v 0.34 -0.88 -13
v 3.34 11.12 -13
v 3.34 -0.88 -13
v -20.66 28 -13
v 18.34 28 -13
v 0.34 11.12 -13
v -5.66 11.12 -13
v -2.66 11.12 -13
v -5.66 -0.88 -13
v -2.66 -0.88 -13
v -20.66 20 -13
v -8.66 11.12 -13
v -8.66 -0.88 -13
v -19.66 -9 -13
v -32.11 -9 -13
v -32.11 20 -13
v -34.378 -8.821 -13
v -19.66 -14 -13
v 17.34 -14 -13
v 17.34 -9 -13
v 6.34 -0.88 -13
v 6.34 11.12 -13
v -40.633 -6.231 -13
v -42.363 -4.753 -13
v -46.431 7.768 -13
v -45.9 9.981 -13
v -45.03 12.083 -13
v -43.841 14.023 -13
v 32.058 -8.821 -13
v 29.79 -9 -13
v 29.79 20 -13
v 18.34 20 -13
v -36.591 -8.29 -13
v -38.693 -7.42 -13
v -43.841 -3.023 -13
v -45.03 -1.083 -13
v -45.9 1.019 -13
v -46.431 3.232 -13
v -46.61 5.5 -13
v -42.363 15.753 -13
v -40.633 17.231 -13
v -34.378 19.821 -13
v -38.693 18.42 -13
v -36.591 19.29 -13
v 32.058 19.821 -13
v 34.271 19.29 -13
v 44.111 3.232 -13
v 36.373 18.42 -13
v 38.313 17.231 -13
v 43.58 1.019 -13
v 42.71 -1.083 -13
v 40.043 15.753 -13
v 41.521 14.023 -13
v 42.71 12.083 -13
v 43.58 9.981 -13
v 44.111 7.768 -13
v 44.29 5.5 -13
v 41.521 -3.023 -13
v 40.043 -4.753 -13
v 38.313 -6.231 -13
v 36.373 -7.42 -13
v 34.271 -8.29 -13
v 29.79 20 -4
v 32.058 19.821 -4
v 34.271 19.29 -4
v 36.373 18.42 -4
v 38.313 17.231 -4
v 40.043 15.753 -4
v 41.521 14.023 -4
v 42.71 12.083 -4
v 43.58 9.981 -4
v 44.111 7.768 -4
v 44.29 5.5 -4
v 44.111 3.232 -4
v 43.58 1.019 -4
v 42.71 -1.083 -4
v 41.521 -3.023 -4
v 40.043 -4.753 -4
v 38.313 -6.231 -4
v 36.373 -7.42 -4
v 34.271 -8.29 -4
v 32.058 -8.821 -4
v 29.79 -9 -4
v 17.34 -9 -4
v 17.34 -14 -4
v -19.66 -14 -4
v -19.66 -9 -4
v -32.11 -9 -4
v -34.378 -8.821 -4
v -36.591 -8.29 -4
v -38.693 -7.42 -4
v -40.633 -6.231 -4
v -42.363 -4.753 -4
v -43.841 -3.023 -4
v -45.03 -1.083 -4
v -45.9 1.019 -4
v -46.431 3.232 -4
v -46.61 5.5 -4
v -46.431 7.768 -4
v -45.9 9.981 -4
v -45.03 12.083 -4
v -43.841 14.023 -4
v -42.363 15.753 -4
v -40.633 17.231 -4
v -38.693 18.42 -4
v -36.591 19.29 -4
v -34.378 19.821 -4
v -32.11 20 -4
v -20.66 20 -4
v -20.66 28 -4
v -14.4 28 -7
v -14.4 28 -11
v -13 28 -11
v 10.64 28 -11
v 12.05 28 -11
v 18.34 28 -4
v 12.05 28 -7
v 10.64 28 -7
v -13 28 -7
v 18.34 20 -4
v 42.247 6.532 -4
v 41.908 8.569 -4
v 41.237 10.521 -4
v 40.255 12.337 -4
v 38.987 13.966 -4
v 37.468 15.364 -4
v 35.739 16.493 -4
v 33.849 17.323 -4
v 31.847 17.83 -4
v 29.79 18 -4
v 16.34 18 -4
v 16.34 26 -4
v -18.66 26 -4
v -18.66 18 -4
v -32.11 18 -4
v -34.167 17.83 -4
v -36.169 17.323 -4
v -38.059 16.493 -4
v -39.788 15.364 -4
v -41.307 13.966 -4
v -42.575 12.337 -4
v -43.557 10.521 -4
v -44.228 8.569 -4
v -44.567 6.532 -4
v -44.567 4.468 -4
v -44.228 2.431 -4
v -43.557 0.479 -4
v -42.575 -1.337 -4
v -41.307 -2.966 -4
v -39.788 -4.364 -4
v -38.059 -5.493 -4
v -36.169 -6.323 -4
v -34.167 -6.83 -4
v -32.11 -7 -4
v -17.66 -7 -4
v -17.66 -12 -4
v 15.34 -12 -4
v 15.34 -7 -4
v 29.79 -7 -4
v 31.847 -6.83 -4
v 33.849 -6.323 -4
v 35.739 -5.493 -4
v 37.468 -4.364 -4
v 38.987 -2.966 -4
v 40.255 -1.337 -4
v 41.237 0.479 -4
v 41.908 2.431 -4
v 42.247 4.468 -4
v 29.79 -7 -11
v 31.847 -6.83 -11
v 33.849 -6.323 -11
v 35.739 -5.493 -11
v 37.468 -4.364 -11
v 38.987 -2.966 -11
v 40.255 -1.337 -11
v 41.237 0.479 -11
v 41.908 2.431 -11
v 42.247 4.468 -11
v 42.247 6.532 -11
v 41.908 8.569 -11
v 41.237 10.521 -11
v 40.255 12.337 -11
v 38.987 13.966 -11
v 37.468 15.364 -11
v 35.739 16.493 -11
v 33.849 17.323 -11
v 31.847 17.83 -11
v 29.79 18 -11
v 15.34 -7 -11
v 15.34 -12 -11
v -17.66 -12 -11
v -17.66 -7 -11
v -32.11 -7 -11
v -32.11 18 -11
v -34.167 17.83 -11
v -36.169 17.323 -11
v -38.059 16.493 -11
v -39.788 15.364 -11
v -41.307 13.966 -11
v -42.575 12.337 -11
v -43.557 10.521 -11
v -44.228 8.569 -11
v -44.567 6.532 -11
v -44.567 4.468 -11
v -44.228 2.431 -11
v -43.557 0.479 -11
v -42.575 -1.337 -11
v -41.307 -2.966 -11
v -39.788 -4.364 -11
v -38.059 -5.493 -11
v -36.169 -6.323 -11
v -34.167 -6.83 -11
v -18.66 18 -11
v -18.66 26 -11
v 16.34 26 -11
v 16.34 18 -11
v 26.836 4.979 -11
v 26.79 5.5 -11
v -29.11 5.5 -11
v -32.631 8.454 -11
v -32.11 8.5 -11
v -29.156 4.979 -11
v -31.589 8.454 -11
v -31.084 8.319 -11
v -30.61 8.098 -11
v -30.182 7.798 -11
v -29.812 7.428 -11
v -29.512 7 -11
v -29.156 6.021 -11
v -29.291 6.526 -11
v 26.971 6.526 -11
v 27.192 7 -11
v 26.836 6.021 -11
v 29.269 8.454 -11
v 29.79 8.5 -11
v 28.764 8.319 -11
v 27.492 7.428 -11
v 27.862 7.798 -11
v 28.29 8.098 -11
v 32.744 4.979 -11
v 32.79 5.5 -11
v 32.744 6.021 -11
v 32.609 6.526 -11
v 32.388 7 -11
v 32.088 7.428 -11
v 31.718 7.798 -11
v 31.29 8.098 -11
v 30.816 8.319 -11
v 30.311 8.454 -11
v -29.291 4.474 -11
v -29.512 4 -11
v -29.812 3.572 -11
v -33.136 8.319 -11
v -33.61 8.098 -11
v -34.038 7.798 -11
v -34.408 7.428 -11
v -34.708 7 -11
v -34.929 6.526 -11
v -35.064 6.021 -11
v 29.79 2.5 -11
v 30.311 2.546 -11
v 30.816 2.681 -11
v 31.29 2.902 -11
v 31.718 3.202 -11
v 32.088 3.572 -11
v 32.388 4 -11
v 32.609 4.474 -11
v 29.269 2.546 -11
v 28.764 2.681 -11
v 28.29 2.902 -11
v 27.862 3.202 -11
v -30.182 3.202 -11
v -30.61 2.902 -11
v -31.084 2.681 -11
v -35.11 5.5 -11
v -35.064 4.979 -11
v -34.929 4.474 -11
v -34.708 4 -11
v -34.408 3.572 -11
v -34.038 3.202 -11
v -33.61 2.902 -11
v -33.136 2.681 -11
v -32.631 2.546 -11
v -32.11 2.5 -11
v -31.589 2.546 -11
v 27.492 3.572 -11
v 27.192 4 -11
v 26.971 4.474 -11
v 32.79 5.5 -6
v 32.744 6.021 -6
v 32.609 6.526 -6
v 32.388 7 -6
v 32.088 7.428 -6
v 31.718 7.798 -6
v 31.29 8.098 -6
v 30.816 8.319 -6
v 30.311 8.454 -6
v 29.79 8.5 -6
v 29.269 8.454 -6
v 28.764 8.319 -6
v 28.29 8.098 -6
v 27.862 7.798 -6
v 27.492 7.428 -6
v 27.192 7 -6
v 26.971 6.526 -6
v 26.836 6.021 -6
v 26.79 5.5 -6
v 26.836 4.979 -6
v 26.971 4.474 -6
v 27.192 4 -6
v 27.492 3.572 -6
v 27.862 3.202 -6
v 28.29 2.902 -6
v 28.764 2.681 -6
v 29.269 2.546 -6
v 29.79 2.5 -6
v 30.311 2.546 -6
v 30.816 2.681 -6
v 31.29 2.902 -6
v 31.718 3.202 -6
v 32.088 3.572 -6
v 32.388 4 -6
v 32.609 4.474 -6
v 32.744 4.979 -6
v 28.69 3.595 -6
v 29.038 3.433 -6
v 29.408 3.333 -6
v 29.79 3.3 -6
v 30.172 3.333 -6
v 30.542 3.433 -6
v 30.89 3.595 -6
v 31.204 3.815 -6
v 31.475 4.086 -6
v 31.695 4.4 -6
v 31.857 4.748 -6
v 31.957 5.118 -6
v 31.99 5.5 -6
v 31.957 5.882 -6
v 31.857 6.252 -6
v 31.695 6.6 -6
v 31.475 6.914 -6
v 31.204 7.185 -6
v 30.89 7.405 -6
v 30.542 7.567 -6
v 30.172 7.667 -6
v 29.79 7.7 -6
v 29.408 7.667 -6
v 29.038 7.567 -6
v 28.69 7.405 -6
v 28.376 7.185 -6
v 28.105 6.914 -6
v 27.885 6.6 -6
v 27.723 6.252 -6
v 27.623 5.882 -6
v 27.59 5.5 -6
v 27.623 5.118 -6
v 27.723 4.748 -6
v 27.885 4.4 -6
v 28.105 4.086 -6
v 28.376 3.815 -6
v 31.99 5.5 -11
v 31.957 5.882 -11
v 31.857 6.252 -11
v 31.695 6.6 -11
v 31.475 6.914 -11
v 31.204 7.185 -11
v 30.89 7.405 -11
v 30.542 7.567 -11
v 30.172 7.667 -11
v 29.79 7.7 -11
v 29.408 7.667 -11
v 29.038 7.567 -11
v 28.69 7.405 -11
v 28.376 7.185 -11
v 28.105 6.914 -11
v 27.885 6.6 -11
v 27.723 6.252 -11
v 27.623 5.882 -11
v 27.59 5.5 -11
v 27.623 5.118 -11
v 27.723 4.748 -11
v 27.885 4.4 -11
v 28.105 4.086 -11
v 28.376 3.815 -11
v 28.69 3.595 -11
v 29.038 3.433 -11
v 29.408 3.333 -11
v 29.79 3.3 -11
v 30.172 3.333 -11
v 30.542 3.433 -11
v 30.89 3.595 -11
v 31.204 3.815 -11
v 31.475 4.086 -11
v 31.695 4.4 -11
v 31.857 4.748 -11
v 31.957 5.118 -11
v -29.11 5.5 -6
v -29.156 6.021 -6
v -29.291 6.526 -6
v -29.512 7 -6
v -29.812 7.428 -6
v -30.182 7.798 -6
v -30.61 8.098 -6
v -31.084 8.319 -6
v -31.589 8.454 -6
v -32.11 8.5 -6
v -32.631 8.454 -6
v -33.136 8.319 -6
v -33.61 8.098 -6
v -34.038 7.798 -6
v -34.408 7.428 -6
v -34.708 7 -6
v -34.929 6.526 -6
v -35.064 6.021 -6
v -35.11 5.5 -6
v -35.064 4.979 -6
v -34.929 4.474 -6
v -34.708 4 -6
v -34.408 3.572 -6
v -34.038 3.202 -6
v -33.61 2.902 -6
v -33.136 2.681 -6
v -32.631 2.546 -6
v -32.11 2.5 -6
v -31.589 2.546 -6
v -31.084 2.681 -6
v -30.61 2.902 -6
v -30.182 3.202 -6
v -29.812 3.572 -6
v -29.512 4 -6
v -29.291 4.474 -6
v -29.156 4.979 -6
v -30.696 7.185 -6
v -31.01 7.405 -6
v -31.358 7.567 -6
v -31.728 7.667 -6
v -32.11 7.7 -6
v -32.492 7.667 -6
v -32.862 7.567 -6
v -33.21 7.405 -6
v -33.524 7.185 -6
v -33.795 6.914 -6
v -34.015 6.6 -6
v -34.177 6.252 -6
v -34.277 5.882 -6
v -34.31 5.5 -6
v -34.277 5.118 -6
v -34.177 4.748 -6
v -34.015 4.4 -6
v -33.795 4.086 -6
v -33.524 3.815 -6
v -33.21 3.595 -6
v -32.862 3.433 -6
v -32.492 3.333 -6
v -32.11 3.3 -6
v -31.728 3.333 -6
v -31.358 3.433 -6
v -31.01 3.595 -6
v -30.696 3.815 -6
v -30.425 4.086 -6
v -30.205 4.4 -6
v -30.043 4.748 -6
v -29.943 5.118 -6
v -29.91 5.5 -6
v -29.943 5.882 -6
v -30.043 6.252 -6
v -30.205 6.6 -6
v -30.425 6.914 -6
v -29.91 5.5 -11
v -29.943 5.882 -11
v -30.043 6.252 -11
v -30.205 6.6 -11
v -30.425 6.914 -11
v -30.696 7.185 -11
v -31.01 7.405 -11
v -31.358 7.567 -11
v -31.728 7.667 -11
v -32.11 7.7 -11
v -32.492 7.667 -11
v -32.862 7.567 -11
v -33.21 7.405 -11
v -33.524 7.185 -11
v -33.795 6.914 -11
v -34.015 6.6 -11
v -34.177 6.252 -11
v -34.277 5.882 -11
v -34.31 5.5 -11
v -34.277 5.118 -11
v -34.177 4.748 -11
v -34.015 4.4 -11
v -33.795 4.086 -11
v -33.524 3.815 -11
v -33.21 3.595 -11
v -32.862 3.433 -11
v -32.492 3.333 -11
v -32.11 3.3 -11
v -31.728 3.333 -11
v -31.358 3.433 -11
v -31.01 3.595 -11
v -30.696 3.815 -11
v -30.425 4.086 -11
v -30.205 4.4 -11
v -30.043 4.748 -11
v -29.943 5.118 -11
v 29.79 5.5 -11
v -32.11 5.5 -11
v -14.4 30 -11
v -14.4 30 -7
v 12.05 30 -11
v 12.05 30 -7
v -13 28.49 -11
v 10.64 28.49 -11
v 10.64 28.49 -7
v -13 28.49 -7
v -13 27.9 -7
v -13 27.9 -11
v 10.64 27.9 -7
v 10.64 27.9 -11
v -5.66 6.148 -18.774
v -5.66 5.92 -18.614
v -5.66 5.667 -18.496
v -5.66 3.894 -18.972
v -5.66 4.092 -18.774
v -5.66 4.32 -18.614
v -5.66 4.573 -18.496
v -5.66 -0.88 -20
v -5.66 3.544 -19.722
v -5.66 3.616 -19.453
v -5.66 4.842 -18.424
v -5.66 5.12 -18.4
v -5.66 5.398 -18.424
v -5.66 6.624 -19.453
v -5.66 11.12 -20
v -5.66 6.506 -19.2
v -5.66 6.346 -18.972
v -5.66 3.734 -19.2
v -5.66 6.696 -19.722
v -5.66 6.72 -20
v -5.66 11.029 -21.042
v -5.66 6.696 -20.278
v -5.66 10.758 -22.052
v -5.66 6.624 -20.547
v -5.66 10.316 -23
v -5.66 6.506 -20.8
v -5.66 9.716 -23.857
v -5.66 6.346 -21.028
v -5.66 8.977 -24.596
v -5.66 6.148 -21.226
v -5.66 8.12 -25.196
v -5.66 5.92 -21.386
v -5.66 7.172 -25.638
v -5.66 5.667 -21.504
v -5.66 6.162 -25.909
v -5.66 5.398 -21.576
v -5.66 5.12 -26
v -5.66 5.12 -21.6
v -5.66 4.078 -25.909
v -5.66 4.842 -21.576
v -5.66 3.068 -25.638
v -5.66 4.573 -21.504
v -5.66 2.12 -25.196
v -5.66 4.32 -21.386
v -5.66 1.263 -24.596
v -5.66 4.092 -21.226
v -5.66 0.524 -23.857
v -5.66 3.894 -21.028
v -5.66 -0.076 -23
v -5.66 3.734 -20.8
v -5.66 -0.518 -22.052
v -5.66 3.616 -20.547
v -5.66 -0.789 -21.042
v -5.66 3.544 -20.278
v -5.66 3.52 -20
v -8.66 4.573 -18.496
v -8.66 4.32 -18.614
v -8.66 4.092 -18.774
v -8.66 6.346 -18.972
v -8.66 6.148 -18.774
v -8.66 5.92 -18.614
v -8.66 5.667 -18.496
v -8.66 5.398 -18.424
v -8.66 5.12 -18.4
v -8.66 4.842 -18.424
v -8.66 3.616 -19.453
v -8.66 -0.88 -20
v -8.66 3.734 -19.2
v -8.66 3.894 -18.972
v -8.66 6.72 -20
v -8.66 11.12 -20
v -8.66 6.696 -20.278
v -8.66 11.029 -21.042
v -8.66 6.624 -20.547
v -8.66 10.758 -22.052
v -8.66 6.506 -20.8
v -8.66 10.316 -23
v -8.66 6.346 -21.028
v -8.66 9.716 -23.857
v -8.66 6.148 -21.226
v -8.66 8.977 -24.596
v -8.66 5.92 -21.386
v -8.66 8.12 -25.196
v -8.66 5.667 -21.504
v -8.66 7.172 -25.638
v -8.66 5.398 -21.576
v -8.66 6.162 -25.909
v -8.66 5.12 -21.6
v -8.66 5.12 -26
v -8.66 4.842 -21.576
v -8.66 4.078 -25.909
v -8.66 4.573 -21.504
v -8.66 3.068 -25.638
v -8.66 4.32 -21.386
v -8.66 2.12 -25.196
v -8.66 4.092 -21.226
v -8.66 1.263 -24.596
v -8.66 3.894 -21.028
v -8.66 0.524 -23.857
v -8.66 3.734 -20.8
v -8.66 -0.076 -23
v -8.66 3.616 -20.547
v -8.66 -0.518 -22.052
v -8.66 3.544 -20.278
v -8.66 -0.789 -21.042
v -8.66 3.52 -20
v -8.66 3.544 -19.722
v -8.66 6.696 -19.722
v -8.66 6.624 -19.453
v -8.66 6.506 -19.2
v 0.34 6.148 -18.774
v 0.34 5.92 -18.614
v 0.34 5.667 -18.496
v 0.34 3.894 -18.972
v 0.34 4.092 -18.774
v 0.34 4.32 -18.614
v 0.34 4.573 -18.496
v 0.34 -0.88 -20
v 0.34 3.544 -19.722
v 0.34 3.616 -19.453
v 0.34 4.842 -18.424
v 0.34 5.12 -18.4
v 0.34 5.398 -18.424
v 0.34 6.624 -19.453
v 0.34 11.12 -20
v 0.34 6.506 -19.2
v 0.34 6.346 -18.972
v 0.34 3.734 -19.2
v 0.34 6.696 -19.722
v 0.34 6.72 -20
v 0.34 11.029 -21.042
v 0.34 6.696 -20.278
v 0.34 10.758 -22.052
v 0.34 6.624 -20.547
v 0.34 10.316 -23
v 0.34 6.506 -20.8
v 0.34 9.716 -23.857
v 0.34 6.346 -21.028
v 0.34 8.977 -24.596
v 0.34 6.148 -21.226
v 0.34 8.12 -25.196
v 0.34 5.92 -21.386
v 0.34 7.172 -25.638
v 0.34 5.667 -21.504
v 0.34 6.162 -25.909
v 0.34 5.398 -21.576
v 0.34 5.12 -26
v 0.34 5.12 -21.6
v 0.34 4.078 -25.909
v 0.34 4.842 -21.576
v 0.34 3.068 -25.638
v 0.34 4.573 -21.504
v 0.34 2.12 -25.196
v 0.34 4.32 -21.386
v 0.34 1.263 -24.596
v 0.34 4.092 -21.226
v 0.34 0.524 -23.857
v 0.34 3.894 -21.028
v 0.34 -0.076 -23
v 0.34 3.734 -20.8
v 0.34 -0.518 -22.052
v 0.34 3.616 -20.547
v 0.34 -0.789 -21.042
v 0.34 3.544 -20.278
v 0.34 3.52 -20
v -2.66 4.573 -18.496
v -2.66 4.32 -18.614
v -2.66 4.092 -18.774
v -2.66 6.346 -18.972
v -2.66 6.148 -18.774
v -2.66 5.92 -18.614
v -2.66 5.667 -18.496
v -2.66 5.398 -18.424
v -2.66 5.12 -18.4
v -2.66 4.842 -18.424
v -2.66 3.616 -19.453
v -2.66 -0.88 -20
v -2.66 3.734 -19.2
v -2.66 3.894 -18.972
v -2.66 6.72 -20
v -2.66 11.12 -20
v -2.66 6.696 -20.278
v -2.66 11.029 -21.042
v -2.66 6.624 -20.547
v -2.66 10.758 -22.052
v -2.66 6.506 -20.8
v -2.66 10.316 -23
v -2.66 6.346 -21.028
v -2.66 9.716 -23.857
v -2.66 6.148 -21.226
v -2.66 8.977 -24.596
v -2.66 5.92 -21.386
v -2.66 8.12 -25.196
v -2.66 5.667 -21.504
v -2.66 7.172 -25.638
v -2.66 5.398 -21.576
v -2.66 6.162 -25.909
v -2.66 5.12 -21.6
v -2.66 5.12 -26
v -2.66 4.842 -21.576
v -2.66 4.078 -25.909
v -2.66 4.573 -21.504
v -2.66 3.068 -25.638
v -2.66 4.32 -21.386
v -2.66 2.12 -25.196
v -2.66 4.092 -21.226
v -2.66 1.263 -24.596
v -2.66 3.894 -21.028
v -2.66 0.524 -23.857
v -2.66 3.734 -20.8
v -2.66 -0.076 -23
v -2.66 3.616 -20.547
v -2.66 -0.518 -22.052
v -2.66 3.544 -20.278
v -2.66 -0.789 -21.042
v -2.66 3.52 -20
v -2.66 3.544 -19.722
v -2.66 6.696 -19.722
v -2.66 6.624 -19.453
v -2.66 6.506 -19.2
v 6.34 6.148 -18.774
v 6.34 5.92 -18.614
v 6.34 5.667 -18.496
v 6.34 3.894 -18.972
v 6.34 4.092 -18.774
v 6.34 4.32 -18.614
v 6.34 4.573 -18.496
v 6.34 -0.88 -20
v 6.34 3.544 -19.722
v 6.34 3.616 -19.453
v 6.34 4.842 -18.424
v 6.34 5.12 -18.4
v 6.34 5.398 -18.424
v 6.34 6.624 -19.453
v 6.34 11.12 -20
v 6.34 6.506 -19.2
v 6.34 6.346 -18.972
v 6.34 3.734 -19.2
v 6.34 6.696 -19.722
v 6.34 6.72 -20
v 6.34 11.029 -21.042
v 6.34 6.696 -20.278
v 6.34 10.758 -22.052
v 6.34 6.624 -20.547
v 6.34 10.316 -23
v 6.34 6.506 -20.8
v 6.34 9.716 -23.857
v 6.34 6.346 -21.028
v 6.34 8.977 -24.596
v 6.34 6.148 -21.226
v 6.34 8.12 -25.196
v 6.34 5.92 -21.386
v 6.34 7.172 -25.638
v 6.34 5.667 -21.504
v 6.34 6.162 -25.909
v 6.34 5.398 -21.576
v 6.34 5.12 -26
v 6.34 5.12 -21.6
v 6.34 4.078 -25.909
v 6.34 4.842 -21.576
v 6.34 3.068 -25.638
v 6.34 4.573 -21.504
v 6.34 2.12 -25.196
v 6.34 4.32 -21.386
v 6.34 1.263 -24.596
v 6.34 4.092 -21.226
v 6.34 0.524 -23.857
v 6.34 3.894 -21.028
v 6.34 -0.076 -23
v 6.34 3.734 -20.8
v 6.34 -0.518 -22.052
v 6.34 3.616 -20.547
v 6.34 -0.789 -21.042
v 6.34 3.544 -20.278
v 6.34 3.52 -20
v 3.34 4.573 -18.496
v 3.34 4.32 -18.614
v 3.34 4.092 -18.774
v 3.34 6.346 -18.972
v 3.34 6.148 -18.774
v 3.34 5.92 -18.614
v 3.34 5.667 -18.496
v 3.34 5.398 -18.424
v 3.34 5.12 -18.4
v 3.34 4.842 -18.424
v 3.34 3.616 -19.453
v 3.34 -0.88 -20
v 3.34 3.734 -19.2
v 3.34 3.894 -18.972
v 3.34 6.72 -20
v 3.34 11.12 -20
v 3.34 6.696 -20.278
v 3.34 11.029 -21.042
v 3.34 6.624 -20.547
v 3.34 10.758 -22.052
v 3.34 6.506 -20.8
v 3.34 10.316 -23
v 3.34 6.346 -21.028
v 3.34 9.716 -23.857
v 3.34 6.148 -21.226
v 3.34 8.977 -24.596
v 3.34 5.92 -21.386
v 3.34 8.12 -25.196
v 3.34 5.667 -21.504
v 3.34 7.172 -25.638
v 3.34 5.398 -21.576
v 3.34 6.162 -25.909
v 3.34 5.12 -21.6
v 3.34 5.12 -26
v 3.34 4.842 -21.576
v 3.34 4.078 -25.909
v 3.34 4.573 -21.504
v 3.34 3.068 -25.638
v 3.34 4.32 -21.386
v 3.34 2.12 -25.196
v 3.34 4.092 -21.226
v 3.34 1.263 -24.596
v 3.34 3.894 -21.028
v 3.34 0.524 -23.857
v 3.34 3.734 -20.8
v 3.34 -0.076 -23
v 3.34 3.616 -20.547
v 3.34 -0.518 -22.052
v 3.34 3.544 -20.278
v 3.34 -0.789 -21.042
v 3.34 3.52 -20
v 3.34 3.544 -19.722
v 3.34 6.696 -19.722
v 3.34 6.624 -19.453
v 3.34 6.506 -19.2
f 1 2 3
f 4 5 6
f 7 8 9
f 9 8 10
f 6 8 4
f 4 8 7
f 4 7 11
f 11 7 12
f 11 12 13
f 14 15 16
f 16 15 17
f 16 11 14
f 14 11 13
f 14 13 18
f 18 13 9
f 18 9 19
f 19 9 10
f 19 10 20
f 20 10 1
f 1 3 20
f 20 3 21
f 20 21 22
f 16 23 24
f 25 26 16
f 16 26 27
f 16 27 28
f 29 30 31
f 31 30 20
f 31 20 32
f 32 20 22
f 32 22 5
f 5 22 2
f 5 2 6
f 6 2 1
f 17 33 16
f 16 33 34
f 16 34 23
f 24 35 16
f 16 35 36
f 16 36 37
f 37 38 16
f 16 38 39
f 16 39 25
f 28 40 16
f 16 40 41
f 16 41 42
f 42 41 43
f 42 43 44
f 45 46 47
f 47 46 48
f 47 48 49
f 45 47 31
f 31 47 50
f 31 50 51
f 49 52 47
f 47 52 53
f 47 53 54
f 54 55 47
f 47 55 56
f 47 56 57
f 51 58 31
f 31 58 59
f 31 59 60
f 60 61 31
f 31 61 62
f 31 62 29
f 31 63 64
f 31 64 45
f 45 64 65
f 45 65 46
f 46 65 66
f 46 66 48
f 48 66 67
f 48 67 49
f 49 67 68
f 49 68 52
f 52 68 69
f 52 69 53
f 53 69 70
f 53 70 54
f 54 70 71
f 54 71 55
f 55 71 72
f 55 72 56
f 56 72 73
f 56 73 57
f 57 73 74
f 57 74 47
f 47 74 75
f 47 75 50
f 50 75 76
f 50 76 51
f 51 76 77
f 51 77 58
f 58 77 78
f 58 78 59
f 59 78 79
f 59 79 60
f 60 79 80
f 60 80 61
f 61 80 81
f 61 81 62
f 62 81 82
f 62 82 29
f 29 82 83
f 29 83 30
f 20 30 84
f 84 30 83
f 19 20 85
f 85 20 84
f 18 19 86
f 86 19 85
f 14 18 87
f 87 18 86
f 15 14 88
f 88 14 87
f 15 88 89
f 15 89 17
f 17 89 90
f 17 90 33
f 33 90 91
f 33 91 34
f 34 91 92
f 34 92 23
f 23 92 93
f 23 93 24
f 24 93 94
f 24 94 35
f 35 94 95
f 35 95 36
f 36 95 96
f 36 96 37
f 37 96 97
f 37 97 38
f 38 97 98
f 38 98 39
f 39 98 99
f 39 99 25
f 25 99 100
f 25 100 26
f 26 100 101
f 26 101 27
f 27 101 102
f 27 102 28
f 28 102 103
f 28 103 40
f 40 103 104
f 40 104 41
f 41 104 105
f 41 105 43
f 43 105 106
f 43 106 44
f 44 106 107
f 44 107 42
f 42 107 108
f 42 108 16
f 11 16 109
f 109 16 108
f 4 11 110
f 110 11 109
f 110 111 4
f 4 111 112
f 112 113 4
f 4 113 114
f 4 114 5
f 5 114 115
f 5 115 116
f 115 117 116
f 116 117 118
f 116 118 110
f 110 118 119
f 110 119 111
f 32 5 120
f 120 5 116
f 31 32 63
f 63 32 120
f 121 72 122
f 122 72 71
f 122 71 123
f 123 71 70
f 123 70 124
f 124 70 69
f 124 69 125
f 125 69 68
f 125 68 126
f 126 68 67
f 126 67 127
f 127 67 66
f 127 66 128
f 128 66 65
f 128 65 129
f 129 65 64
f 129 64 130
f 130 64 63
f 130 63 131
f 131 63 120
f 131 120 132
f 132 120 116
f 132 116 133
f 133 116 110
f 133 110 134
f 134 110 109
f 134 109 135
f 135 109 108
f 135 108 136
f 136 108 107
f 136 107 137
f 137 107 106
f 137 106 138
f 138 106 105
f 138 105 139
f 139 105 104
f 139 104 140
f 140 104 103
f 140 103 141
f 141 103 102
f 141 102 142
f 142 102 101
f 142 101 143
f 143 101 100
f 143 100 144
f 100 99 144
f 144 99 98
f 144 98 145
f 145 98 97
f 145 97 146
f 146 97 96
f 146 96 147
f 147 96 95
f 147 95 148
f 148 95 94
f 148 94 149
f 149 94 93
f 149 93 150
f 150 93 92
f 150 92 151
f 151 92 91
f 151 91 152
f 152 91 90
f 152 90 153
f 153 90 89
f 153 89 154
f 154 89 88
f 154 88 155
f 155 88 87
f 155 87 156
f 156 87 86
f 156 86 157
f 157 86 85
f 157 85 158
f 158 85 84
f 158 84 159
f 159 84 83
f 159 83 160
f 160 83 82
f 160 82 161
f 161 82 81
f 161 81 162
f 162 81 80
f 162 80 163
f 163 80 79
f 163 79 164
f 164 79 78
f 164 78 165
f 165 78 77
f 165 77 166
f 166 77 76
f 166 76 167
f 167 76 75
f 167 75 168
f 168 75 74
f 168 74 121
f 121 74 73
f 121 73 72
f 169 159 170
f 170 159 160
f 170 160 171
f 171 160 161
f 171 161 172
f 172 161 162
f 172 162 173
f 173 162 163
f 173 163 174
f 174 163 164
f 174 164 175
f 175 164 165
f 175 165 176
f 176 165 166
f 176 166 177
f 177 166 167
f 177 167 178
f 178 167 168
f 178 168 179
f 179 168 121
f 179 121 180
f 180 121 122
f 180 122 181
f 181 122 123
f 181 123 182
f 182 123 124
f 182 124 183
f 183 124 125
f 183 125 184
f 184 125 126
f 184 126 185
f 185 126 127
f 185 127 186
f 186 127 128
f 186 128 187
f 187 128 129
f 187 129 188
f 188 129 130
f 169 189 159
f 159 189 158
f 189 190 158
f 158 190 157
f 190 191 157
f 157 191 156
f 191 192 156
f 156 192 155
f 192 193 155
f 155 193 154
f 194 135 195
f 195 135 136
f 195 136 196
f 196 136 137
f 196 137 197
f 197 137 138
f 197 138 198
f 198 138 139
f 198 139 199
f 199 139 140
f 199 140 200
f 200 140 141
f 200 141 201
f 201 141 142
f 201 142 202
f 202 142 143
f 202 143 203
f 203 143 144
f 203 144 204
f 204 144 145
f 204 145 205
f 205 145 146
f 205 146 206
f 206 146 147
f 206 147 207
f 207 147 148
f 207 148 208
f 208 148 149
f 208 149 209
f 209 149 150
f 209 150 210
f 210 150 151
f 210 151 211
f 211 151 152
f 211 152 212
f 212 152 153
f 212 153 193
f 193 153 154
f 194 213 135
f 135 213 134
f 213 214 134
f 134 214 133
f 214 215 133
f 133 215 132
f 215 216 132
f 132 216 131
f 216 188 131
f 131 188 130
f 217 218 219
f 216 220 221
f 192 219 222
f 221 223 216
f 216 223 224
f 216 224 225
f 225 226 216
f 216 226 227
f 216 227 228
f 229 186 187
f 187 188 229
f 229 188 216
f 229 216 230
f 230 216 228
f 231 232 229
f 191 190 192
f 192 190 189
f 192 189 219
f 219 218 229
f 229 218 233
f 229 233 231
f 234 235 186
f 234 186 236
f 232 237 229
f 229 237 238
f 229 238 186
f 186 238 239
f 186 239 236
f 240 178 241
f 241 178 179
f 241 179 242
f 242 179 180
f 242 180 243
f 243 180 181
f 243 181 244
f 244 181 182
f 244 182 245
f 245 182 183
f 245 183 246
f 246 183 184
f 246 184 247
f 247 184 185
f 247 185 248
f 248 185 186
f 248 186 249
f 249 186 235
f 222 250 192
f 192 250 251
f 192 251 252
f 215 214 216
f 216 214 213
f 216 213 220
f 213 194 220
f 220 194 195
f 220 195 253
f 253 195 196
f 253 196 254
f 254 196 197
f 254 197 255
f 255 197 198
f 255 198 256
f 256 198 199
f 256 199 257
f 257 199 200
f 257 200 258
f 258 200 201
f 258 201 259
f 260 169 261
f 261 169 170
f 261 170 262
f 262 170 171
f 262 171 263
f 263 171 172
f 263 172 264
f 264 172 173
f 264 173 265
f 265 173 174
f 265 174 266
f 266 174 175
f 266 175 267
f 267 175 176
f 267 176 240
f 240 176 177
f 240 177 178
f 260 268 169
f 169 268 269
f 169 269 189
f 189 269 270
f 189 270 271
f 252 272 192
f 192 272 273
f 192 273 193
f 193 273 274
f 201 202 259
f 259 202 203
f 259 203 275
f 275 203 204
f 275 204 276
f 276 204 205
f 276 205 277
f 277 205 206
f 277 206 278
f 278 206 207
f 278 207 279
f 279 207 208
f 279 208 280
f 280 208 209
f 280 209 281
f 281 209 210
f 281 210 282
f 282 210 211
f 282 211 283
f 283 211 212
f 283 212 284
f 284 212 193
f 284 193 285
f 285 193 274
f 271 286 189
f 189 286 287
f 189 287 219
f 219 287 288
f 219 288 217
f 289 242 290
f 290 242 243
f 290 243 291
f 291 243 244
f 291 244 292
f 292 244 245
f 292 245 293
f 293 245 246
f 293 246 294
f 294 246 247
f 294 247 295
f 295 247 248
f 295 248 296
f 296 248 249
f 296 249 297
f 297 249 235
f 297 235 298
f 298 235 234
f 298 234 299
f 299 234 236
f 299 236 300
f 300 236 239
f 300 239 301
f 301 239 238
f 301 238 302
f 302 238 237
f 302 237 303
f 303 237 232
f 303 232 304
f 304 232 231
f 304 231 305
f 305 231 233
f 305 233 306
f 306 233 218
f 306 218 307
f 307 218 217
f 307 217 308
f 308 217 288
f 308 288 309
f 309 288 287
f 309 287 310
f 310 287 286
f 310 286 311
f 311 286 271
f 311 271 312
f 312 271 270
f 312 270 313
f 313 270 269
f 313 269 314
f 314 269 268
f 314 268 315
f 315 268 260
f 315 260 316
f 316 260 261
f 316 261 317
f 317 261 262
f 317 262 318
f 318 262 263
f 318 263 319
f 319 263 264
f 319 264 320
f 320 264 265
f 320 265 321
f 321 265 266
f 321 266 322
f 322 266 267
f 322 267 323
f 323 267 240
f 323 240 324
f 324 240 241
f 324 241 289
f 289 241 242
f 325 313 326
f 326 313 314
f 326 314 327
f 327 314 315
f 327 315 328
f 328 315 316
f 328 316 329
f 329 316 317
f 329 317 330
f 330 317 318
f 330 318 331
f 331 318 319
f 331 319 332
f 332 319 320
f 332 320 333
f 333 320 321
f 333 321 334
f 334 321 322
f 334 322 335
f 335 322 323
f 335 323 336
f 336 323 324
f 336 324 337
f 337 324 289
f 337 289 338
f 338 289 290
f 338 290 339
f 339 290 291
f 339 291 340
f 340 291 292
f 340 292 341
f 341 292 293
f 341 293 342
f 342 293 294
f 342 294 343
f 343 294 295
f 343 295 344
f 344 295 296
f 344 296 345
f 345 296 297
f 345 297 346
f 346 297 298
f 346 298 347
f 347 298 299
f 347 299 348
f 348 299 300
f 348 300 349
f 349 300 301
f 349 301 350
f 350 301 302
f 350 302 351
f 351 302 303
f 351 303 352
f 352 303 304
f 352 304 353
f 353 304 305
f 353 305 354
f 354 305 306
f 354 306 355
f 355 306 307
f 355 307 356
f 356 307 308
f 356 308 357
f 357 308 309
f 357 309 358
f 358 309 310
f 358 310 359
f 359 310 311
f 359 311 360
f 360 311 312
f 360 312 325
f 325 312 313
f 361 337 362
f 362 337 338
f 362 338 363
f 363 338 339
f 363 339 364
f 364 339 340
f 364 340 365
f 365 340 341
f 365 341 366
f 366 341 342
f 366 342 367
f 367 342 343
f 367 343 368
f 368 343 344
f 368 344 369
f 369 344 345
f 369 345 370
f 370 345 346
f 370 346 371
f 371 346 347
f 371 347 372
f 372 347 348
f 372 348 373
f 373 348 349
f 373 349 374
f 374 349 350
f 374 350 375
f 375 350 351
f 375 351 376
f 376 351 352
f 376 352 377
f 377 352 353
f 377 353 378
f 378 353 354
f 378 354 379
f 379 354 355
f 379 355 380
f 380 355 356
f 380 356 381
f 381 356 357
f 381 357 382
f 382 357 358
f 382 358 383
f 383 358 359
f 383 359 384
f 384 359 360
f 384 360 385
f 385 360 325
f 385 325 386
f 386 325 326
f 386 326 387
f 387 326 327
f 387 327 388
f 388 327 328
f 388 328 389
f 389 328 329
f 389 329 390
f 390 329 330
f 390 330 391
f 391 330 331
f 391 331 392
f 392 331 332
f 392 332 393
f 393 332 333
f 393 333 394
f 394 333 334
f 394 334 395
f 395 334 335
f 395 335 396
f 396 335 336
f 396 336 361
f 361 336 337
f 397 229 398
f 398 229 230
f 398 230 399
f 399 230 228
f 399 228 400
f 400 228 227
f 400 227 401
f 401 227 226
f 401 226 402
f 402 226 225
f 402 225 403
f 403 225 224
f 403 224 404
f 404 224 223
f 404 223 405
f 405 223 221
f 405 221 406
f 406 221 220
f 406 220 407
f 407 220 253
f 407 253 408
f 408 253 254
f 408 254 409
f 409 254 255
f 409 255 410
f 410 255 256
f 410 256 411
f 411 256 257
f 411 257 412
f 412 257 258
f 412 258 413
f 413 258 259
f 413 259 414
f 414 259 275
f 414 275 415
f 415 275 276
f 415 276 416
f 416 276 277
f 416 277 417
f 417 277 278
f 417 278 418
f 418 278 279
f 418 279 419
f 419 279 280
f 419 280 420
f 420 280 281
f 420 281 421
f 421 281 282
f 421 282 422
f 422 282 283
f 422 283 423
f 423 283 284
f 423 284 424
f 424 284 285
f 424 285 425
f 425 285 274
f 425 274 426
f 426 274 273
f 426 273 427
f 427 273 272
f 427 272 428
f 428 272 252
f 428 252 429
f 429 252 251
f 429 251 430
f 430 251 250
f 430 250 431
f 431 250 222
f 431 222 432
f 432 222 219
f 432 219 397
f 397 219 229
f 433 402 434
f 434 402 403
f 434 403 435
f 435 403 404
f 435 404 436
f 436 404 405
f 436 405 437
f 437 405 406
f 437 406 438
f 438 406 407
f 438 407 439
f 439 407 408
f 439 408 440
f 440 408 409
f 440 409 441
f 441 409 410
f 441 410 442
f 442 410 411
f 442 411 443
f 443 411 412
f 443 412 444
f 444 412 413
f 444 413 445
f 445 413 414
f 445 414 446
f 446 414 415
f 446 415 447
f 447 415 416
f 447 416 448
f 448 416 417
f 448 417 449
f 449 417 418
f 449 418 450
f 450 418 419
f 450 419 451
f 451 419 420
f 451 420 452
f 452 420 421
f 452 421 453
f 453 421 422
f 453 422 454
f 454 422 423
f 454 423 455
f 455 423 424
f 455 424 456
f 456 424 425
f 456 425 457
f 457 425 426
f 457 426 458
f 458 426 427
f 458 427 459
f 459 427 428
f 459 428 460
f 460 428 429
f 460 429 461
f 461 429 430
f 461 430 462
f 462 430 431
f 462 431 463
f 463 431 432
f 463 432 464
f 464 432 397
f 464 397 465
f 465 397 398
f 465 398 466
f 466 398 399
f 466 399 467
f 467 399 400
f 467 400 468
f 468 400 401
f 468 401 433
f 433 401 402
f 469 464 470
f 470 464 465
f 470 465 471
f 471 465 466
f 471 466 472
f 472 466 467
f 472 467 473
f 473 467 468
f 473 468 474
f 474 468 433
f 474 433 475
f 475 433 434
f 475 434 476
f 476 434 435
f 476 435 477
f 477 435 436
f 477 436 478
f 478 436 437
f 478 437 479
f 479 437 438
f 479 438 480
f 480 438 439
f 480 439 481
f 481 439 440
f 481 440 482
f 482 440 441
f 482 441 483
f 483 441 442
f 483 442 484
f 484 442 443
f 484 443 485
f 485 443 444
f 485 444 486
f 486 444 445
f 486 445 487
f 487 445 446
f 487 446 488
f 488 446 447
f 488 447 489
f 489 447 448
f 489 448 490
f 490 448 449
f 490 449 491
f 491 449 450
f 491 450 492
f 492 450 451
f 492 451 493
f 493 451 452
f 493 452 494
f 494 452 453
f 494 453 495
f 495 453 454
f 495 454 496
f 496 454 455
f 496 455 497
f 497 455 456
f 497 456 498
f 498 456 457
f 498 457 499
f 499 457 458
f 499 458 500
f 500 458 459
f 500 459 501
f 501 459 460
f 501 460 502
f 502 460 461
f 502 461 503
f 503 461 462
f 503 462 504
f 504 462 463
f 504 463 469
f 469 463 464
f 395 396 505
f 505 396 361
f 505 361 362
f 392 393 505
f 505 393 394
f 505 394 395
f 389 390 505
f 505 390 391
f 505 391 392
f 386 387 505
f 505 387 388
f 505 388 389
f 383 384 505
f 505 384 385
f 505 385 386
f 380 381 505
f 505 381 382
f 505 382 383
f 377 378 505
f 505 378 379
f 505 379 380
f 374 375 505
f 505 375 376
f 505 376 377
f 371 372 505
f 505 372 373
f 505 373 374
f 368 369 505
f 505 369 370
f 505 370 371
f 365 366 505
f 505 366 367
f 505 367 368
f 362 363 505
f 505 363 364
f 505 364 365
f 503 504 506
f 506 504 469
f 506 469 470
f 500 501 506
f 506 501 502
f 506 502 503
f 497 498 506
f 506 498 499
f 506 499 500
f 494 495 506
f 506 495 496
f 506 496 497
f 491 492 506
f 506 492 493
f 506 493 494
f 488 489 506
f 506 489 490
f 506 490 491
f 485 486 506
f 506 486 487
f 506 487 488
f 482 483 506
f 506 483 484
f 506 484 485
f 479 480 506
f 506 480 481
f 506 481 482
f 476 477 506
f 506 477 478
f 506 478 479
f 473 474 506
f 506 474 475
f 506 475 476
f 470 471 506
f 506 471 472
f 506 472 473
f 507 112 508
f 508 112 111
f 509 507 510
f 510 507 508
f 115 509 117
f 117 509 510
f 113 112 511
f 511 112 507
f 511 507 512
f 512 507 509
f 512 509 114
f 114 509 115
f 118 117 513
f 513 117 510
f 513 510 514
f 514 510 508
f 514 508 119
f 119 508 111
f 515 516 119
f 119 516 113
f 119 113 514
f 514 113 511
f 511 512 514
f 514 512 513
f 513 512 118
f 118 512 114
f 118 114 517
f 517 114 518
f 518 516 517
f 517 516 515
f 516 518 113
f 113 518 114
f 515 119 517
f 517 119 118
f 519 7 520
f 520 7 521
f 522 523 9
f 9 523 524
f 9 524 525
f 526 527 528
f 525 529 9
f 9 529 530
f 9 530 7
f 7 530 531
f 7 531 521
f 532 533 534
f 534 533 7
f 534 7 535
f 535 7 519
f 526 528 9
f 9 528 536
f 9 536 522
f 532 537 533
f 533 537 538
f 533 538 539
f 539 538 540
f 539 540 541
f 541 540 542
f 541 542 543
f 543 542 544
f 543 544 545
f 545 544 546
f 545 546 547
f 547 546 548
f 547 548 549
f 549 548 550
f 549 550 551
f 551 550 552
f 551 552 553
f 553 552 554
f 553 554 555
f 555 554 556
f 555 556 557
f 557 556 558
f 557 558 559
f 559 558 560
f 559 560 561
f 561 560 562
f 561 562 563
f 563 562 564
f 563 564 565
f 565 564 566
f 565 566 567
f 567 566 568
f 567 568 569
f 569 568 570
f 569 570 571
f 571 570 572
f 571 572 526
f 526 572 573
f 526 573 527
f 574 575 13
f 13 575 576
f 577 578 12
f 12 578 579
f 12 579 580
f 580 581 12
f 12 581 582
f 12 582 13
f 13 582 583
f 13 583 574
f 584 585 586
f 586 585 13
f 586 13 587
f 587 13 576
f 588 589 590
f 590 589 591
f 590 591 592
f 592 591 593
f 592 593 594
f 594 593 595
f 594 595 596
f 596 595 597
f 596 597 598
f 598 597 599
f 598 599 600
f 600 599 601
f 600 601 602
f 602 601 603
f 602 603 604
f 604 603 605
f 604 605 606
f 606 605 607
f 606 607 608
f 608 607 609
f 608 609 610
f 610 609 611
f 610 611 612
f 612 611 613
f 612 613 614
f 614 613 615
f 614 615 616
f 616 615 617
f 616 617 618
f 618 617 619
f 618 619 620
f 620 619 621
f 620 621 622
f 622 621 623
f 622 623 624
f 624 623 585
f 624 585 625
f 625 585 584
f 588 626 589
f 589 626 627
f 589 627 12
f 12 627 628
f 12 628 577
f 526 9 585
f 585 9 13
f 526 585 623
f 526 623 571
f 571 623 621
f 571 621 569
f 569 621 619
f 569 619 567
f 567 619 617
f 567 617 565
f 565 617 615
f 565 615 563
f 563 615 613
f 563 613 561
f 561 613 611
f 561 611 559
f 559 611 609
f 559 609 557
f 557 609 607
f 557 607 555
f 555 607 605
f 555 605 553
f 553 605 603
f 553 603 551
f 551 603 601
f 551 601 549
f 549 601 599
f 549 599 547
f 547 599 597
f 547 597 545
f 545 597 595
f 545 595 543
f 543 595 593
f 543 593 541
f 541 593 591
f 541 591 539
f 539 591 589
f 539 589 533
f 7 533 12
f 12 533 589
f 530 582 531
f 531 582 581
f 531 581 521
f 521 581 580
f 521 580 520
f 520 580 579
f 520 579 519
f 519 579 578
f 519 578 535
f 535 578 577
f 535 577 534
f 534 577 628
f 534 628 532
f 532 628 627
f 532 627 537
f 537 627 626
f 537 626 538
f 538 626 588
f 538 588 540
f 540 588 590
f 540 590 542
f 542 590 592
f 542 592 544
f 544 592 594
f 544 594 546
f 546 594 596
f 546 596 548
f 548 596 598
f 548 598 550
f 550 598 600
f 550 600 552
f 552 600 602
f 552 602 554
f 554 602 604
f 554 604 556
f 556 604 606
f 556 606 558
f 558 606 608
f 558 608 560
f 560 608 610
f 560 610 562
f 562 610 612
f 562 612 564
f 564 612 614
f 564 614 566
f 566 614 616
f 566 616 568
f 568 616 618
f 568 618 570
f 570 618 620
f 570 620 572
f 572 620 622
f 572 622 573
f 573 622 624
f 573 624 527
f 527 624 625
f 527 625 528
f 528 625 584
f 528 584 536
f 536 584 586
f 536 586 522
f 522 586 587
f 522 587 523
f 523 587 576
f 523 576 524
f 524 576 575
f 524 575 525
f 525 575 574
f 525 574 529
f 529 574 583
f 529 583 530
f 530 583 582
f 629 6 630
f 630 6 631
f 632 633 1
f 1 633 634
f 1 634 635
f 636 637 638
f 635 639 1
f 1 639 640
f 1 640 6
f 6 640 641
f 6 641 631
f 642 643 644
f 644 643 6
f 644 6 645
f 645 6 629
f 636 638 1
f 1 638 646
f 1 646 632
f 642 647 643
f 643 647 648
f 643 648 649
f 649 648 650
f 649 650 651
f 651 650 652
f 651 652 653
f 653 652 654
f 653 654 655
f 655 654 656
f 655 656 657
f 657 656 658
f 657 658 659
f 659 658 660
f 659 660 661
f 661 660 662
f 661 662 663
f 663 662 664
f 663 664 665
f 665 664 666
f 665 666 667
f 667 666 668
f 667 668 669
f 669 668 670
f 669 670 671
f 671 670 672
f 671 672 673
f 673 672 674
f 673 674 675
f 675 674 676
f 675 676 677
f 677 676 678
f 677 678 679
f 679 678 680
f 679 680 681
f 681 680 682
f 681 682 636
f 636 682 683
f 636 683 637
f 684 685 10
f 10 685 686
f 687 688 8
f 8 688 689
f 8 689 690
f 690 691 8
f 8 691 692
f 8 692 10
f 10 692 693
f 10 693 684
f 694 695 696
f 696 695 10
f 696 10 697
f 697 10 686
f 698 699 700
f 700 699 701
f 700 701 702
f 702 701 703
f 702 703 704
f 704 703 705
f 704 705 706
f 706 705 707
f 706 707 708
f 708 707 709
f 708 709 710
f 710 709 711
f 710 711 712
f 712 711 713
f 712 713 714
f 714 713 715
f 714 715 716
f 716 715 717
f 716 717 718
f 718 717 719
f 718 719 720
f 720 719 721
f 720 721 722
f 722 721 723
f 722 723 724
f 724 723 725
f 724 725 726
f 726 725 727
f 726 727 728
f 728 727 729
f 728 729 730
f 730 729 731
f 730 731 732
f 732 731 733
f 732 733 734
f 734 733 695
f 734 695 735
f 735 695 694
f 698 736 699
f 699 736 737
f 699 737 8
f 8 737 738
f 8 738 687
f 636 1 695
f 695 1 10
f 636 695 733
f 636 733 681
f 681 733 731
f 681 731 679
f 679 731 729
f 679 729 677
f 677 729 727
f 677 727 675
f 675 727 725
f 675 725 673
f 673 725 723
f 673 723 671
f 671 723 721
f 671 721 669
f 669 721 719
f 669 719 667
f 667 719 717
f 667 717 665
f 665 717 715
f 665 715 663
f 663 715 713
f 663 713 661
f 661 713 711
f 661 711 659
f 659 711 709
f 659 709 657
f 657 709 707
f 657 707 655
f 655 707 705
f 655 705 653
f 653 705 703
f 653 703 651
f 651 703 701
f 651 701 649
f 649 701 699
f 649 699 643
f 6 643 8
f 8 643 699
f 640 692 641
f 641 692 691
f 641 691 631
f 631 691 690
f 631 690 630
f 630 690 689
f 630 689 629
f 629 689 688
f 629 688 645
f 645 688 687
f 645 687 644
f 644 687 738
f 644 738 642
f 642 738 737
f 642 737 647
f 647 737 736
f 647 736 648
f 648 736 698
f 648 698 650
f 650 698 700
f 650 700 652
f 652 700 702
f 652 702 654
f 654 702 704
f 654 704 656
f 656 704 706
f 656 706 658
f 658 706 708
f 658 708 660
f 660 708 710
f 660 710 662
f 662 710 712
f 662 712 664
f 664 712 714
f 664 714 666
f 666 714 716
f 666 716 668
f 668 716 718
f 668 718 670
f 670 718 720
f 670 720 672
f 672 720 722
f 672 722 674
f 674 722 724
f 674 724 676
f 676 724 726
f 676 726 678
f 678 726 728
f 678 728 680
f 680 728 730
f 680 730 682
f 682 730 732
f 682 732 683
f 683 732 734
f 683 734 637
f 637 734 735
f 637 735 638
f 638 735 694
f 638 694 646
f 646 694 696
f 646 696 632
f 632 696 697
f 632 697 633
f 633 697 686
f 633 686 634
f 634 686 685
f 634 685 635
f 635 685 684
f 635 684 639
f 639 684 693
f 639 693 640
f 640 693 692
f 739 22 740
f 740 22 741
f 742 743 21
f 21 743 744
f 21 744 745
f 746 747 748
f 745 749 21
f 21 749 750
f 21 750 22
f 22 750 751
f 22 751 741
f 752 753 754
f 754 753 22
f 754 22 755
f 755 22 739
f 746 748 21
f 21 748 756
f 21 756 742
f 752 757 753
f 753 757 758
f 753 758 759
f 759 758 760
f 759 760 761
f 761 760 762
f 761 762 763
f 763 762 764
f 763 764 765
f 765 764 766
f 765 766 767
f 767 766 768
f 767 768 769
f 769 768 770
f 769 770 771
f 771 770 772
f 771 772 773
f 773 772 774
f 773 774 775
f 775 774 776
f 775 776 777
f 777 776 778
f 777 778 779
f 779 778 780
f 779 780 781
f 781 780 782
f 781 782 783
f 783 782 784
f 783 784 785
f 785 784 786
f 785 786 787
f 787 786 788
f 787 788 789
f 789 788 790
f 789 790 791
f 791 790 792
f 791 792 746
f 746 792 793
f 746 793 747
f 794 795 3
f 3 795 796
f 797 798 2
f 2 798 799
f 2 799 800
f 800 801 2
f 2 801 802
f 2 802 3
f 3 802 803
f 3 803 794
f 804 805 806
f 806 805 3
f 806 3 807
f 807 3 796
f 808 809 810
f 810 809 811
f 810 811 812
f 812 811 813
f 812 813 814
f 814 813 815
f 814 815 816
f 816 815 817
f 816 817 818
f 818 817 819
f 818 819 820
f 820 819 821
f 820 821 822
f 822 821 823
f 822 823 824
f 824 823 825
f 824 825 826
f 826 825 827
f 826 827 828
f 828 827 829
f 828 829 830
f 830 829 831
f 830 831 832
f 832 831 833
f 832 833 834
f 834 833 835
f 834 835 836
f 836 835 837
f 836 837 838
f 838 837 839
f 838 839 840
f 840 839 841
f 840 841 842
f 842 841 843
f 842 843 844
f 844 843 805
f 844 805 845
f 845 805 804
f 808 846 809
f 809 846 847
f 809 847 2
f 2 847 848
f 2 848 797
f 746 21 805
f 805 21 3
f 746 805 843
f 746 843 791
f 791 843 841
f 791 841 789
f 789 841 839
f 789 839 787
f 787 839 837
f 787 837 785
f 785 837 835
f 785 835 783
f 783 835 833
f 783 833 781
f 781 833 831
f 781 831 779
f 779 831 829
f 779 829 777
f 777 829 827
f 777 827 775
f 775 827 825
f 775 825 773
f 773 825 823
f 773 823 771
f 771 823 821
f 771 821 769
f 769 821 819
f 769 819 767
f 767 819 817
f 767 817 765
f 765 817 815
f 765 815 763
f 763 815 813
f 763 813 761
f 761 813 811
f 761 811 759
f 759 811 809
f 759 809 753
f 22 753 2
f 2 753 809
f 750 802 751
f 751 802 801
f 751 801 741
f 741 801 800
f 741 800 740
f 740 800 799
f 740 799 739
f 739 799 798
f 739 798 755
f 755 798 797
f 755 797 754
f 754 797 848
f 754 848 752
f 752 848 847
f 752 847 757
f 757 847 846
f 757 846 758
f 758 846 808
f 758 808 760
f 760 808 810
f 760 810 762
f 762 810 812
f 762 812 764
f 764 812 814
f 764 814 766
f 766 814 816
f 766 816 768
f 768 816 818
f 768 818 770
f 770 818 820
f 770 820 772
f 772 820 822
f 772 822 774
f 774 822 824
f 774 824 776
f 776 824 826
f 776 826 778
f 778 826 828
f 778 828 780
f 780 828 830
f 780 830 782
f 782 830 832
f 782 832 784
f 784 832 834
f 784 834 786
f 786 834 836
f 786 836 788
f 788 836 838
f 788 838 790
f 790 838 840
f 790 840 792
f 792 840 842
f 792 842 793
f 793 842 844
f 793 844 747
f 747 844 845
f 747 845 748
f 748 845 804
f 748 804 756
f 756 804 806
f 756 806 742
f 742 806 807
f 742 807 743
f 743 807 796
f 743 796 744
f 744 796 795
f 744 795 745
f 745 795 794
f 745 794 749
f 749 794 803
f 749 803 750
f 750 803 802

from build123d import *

# Parameters (mm, degrees)
BACK_COVER_DEPTH     = 9
COVER_POCKET_DEPTH   = 7
SK_POSTS_R           = 3
SK_POSTS_R_2         = 2.2
IR_BOARD_POSTS_DEPTH = 5
SK_CAP_W             = 26.45
SK_CAP_H             = 2
CABLE_CAP_DEPTH      = 4
SK_CAPSLOT_W         = 23.64
SK_CAPSLOT_H         = 0.59
RIBBON_SLOT_DEPTH    = 4
SK_FINGER1_R         = 1.6
HINGE_FINGER_1_DEPTH = 1.5
SK_FINGER2_R         = 1.6
HINGE_FINGER_2_DEPTH = 1.5
SK_FINGER3_R         = 1.6
HINGE_FINGER_3_DEPTH = 1.5


with BuildPart() as part:
    # Sk_SkirtOuter → Back Cover (new body)
    with BuildSketch(Plane.XY.offset(-4)):
        with BuildLine():
            Line((29.79, 20), (18.34, 20))
            Line((18.34, 20), (18.34, 28))
            Line((18.34, 28), (-20.66, 28))
            Line((-20.66, 28), (-20.66, 20))
            Line((-20.66, 20), (-32.11, 20))
            ThreePointArc((-32.11, 20), (-46.61, 5.5), (-32.11, -9))
            Line((-32.11, -9), (-19.66, -9))
            Line((-19.66, -9), (-19.66, -14))
            Line((-19.66, -14), (17.34, -14))
            Line((17.34, -14), (17.34, -9))
            Line((17.34, -9), (29.79, -9))
            ThreePointArc((29.79, -9), (44.29, 5.5), (29.79, 20))
        make_face()
    extrude(amount=-BACK_COVER_DEPTH)

    # Sk_SkirtInner → Cover Pocket (cut)
    with BuildSketch(Plane.XY.offset(-4)):
        with BuildLine():
            Line((29.79, 18), (16.34, 18))
            Line((16.34, 18), (16.34, 26))
            Line((16.34, 26), (-18.66, 26))
            Line((-18.66, 26), (-18.66, 18))
            Line((-18.66, 18), (-32.11, 18))
            ThreePointArc((-32.11, 18), (-44.61, 5.5), (-32.11, -7))
            Line((-32.11, -7), (-17.66, -7))
            Line((-17.66, -7), (-17.66, -12))
            Line((-17.66, -12), (15.34, -12))
            Line((15.34, -12), (15.34, -7))
            Line((15.34, -7), (29.79, -7))
            ThreePointArc((29.79, -7), (42.29, 5.5), (29.79, 18))
        make_face()
    extrude(amount=-COVER_POCKET_DEPTH, mode=Mode.SUBTRACT)

    # Sk_Posts → IR Board Posts (add)
    # profile 1 of 2: a face of its own
    with BuildSketch(Plane.XY.offset(-6)):
        with Locations((-32.11, 5.5)):
            Circle(SK_POSTS_R)
        with Locations((-32.11, 5.5)):
            Circle(SK_POSTS_R_2, mode=Mode.SUBTRACT)
    # profile 2 of 2: a face of its own
    with BuildSketch(Plane.XY.offset(-6)):
        with Locations((29.79, 5.5)):
            Circle(SK_POSTS_R)
        with Locations((29.79, 5.5)):
            Circle(SK_POSTS_R_2, mode=Mode.SUBTRACT)
    extrude(amount=-IR_BOARD_POSTS_DEPTH)

    # Sk_Cap → Cable Cap (add)
    with BuildSketch(Plane.XY.offset(-7)):
        with Locations((-1.175, 29)):
            Rectangle(SK_CAP_W, SK_CAP_H)
    extrude(amount=-CABLE_CAP_DEPTH)

    # Sk_CapSlot → Ribbon Slot (cut)
    with BuildSketch(Plane.XY.offset(-7)):
        with Locations((-1.18, 28.195)):
            Rectangle(SK_CAPSLOT_W, SK_CAPSLOT_H)
    extrude(amount=-RIBBON_SLOT_DEPTH, mode=Mode.SUBTRACT)

    # Sk_Finger1 → Hinge Finger 1 (add, symmetric)
    with BuildSketch(Plane(origin=(-7.16, 0, 0), x_dir=(0, 0, -1), z_dir=(1, 0, 0))):
        with BuildLine():
            Line((13, -0.88), (20, -0.88))
            ThreePointArc((20, -0.88), (26, 5.12), (20, 11.12))
            Line((20, 11.12), (13, 11.12))
            Line((13, 11.12), (13, -0.88))
        make_face()
        with Locations((20, 5.12)):
            Circle(SK_FINGER1_R, mode=Mode.SUBTRACT)
    extrude(amount=HINGE_FINGER_1_DEPTH, both=True)

    # Sk_Finger2 → Hinge Finger 2 (add, symmetric)
    with BuildSketch(Plane(origin=(-1.16, 0, 0), x_dir=(0, 0, -1), z_dir=(1, 0, 0))):
        with BuildLine():
            Line((13, -0.88), (20, -0.88))
            ThreePointArc((20, -0.88), (26, 5.12), (20, 11.12))
            Line((20, 11.12), (13, 11.12))
            Line((13, 11.12), (13, -0.88))
        make_face()
        with Locations((20, 5.12)):
            Circle(SK_FINGER2_R, mode=Mode.SUBTRACT)
    extrude(amount=HINGE_FINGER_2_DEPTH, both=True)

    # Sk_Finger3 → Hinge Finger 3 (add, symmetric)
    with BuildSketch(Plane(origin=(4.84, 0, 0), x_dir=(0, 0, -1), z_dir=(1, 0, 0))):
        with BuildLine():
            Line((13, -0.88), (20, -0.88))
            ThreePointArc((20, -0.88), (26, 5.12), (20, 11.12))
            Line((20, 11.12), (13, 11.12))
            Line((13, 11.12), (13, -0.88))
        make_face()
        with Locations((20, 5.12)):
            Circle(SK_FINGER3_R, mode=Mode.SUBTRACT)
    extrude(amount=HINGE_FINGER_3_DEPTH, both=True)


solid = part.part
